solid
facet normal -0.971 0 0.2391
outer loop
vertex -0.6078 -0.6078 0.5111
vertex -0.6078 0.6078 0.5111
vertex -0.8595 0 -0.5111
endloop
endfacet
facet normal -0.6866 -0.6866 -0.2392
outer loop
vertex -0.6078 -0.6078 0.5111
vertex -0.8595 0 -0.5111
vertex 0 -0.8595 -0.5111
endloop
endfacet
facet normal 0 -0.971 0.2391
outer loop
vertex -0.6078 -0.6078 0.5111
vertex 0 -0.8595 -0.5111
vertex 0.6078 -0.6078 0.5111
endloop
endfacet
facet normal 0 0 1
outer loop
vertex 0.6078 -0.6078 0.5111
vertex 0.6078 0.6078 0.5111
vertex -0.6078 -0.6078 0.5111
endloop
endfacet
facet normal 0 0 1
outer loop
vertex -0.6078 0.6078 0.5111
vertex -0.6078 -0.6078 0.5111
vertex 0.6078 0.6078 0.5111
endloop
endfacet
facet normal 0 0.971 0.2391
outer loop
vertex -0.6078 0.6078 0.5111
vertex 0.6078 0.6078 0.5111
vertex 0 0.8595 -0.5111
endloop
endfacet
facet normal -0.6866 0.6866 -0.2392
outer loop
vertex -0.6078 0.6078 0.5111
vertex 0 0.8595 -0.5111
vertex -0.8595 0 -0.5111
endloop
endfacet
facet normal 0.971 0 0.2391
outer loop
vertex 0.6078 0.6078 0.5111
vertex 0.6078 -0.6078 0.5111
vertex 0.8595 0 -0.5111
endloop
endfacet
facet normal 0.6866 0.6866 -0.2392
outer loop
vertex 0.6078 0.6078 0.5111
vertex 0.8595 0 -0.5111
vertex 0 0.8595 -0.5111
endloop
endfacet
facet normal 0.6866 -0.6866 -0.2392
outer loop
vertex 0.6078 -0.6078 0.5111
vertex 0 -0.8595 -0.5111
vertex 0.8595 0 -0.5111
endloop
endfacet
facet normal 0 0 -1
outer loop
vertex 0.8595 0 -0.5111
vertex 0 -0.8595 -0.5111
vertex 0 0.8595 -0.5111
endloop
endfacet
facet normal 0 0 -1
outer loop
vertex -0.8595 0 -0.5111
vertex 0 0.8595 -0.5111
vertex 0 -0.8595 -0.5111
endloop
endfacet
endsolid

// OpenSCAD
polyhedron( points = [[-0.607781262082271, -0.607781262067567, 0.511081084502927], [-0.607781262027696, 0.607781262125884, 0.511081084502927], [0.607781262056614, 0.607781262016739, 0.511081084502927], [0.607781262002035, -0.607781262067567, 0.511081084502927], [-8.60902066705927e-12, -0.859532503738472, -0.511081084508867], [-0.859532503703283, 7.19719364002703e-11, -0.511081084508867], [6.85706768713028e-11, 0.859532503727236, -0.511081084504992], [0.859532503694639, -6.82249907909374e-11, -0.511081084488982]], faces = [[0, 1, 5], [0, 5, 4], [0, 4, 3], [0, 3, 2, 1], [1, 2, 6], [1, 6, 5], [2, 3, 7], [2, 7, 6], [3, 4, 7], [4, 5, 6, 7]]);
